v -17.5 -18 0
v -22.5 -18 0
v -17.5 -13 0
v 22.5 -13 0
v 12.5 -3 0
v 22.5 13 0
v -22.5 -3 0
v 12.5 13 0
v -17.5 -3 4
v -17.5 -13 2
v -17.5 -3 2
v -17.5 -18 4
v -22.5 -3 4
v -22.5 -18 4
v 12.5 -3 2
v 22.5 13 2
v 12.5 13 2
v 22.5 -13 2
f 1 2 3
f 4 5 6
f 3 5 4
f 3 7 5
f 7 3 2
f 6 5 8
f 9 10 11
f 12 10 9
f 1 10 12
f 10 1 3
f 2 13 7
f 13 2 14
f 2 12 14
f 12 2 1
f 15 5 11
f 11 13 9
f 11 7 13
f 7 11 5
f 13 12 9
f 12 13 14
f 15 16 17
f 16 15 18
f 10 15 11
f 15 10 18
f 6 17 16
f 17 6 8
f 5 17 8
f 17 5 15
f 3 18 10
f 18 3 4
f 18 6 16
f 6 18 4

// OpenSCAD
color("red")
linear_extrude(4)
translate([-22.5,-18,0])
  square([5,15]);
main();

module main() {
linear_extrude(2)
difference() {
  square([45, 26], center = true);
  translate([-10,10,0])
    square([45, 26], center = true);
}
}
